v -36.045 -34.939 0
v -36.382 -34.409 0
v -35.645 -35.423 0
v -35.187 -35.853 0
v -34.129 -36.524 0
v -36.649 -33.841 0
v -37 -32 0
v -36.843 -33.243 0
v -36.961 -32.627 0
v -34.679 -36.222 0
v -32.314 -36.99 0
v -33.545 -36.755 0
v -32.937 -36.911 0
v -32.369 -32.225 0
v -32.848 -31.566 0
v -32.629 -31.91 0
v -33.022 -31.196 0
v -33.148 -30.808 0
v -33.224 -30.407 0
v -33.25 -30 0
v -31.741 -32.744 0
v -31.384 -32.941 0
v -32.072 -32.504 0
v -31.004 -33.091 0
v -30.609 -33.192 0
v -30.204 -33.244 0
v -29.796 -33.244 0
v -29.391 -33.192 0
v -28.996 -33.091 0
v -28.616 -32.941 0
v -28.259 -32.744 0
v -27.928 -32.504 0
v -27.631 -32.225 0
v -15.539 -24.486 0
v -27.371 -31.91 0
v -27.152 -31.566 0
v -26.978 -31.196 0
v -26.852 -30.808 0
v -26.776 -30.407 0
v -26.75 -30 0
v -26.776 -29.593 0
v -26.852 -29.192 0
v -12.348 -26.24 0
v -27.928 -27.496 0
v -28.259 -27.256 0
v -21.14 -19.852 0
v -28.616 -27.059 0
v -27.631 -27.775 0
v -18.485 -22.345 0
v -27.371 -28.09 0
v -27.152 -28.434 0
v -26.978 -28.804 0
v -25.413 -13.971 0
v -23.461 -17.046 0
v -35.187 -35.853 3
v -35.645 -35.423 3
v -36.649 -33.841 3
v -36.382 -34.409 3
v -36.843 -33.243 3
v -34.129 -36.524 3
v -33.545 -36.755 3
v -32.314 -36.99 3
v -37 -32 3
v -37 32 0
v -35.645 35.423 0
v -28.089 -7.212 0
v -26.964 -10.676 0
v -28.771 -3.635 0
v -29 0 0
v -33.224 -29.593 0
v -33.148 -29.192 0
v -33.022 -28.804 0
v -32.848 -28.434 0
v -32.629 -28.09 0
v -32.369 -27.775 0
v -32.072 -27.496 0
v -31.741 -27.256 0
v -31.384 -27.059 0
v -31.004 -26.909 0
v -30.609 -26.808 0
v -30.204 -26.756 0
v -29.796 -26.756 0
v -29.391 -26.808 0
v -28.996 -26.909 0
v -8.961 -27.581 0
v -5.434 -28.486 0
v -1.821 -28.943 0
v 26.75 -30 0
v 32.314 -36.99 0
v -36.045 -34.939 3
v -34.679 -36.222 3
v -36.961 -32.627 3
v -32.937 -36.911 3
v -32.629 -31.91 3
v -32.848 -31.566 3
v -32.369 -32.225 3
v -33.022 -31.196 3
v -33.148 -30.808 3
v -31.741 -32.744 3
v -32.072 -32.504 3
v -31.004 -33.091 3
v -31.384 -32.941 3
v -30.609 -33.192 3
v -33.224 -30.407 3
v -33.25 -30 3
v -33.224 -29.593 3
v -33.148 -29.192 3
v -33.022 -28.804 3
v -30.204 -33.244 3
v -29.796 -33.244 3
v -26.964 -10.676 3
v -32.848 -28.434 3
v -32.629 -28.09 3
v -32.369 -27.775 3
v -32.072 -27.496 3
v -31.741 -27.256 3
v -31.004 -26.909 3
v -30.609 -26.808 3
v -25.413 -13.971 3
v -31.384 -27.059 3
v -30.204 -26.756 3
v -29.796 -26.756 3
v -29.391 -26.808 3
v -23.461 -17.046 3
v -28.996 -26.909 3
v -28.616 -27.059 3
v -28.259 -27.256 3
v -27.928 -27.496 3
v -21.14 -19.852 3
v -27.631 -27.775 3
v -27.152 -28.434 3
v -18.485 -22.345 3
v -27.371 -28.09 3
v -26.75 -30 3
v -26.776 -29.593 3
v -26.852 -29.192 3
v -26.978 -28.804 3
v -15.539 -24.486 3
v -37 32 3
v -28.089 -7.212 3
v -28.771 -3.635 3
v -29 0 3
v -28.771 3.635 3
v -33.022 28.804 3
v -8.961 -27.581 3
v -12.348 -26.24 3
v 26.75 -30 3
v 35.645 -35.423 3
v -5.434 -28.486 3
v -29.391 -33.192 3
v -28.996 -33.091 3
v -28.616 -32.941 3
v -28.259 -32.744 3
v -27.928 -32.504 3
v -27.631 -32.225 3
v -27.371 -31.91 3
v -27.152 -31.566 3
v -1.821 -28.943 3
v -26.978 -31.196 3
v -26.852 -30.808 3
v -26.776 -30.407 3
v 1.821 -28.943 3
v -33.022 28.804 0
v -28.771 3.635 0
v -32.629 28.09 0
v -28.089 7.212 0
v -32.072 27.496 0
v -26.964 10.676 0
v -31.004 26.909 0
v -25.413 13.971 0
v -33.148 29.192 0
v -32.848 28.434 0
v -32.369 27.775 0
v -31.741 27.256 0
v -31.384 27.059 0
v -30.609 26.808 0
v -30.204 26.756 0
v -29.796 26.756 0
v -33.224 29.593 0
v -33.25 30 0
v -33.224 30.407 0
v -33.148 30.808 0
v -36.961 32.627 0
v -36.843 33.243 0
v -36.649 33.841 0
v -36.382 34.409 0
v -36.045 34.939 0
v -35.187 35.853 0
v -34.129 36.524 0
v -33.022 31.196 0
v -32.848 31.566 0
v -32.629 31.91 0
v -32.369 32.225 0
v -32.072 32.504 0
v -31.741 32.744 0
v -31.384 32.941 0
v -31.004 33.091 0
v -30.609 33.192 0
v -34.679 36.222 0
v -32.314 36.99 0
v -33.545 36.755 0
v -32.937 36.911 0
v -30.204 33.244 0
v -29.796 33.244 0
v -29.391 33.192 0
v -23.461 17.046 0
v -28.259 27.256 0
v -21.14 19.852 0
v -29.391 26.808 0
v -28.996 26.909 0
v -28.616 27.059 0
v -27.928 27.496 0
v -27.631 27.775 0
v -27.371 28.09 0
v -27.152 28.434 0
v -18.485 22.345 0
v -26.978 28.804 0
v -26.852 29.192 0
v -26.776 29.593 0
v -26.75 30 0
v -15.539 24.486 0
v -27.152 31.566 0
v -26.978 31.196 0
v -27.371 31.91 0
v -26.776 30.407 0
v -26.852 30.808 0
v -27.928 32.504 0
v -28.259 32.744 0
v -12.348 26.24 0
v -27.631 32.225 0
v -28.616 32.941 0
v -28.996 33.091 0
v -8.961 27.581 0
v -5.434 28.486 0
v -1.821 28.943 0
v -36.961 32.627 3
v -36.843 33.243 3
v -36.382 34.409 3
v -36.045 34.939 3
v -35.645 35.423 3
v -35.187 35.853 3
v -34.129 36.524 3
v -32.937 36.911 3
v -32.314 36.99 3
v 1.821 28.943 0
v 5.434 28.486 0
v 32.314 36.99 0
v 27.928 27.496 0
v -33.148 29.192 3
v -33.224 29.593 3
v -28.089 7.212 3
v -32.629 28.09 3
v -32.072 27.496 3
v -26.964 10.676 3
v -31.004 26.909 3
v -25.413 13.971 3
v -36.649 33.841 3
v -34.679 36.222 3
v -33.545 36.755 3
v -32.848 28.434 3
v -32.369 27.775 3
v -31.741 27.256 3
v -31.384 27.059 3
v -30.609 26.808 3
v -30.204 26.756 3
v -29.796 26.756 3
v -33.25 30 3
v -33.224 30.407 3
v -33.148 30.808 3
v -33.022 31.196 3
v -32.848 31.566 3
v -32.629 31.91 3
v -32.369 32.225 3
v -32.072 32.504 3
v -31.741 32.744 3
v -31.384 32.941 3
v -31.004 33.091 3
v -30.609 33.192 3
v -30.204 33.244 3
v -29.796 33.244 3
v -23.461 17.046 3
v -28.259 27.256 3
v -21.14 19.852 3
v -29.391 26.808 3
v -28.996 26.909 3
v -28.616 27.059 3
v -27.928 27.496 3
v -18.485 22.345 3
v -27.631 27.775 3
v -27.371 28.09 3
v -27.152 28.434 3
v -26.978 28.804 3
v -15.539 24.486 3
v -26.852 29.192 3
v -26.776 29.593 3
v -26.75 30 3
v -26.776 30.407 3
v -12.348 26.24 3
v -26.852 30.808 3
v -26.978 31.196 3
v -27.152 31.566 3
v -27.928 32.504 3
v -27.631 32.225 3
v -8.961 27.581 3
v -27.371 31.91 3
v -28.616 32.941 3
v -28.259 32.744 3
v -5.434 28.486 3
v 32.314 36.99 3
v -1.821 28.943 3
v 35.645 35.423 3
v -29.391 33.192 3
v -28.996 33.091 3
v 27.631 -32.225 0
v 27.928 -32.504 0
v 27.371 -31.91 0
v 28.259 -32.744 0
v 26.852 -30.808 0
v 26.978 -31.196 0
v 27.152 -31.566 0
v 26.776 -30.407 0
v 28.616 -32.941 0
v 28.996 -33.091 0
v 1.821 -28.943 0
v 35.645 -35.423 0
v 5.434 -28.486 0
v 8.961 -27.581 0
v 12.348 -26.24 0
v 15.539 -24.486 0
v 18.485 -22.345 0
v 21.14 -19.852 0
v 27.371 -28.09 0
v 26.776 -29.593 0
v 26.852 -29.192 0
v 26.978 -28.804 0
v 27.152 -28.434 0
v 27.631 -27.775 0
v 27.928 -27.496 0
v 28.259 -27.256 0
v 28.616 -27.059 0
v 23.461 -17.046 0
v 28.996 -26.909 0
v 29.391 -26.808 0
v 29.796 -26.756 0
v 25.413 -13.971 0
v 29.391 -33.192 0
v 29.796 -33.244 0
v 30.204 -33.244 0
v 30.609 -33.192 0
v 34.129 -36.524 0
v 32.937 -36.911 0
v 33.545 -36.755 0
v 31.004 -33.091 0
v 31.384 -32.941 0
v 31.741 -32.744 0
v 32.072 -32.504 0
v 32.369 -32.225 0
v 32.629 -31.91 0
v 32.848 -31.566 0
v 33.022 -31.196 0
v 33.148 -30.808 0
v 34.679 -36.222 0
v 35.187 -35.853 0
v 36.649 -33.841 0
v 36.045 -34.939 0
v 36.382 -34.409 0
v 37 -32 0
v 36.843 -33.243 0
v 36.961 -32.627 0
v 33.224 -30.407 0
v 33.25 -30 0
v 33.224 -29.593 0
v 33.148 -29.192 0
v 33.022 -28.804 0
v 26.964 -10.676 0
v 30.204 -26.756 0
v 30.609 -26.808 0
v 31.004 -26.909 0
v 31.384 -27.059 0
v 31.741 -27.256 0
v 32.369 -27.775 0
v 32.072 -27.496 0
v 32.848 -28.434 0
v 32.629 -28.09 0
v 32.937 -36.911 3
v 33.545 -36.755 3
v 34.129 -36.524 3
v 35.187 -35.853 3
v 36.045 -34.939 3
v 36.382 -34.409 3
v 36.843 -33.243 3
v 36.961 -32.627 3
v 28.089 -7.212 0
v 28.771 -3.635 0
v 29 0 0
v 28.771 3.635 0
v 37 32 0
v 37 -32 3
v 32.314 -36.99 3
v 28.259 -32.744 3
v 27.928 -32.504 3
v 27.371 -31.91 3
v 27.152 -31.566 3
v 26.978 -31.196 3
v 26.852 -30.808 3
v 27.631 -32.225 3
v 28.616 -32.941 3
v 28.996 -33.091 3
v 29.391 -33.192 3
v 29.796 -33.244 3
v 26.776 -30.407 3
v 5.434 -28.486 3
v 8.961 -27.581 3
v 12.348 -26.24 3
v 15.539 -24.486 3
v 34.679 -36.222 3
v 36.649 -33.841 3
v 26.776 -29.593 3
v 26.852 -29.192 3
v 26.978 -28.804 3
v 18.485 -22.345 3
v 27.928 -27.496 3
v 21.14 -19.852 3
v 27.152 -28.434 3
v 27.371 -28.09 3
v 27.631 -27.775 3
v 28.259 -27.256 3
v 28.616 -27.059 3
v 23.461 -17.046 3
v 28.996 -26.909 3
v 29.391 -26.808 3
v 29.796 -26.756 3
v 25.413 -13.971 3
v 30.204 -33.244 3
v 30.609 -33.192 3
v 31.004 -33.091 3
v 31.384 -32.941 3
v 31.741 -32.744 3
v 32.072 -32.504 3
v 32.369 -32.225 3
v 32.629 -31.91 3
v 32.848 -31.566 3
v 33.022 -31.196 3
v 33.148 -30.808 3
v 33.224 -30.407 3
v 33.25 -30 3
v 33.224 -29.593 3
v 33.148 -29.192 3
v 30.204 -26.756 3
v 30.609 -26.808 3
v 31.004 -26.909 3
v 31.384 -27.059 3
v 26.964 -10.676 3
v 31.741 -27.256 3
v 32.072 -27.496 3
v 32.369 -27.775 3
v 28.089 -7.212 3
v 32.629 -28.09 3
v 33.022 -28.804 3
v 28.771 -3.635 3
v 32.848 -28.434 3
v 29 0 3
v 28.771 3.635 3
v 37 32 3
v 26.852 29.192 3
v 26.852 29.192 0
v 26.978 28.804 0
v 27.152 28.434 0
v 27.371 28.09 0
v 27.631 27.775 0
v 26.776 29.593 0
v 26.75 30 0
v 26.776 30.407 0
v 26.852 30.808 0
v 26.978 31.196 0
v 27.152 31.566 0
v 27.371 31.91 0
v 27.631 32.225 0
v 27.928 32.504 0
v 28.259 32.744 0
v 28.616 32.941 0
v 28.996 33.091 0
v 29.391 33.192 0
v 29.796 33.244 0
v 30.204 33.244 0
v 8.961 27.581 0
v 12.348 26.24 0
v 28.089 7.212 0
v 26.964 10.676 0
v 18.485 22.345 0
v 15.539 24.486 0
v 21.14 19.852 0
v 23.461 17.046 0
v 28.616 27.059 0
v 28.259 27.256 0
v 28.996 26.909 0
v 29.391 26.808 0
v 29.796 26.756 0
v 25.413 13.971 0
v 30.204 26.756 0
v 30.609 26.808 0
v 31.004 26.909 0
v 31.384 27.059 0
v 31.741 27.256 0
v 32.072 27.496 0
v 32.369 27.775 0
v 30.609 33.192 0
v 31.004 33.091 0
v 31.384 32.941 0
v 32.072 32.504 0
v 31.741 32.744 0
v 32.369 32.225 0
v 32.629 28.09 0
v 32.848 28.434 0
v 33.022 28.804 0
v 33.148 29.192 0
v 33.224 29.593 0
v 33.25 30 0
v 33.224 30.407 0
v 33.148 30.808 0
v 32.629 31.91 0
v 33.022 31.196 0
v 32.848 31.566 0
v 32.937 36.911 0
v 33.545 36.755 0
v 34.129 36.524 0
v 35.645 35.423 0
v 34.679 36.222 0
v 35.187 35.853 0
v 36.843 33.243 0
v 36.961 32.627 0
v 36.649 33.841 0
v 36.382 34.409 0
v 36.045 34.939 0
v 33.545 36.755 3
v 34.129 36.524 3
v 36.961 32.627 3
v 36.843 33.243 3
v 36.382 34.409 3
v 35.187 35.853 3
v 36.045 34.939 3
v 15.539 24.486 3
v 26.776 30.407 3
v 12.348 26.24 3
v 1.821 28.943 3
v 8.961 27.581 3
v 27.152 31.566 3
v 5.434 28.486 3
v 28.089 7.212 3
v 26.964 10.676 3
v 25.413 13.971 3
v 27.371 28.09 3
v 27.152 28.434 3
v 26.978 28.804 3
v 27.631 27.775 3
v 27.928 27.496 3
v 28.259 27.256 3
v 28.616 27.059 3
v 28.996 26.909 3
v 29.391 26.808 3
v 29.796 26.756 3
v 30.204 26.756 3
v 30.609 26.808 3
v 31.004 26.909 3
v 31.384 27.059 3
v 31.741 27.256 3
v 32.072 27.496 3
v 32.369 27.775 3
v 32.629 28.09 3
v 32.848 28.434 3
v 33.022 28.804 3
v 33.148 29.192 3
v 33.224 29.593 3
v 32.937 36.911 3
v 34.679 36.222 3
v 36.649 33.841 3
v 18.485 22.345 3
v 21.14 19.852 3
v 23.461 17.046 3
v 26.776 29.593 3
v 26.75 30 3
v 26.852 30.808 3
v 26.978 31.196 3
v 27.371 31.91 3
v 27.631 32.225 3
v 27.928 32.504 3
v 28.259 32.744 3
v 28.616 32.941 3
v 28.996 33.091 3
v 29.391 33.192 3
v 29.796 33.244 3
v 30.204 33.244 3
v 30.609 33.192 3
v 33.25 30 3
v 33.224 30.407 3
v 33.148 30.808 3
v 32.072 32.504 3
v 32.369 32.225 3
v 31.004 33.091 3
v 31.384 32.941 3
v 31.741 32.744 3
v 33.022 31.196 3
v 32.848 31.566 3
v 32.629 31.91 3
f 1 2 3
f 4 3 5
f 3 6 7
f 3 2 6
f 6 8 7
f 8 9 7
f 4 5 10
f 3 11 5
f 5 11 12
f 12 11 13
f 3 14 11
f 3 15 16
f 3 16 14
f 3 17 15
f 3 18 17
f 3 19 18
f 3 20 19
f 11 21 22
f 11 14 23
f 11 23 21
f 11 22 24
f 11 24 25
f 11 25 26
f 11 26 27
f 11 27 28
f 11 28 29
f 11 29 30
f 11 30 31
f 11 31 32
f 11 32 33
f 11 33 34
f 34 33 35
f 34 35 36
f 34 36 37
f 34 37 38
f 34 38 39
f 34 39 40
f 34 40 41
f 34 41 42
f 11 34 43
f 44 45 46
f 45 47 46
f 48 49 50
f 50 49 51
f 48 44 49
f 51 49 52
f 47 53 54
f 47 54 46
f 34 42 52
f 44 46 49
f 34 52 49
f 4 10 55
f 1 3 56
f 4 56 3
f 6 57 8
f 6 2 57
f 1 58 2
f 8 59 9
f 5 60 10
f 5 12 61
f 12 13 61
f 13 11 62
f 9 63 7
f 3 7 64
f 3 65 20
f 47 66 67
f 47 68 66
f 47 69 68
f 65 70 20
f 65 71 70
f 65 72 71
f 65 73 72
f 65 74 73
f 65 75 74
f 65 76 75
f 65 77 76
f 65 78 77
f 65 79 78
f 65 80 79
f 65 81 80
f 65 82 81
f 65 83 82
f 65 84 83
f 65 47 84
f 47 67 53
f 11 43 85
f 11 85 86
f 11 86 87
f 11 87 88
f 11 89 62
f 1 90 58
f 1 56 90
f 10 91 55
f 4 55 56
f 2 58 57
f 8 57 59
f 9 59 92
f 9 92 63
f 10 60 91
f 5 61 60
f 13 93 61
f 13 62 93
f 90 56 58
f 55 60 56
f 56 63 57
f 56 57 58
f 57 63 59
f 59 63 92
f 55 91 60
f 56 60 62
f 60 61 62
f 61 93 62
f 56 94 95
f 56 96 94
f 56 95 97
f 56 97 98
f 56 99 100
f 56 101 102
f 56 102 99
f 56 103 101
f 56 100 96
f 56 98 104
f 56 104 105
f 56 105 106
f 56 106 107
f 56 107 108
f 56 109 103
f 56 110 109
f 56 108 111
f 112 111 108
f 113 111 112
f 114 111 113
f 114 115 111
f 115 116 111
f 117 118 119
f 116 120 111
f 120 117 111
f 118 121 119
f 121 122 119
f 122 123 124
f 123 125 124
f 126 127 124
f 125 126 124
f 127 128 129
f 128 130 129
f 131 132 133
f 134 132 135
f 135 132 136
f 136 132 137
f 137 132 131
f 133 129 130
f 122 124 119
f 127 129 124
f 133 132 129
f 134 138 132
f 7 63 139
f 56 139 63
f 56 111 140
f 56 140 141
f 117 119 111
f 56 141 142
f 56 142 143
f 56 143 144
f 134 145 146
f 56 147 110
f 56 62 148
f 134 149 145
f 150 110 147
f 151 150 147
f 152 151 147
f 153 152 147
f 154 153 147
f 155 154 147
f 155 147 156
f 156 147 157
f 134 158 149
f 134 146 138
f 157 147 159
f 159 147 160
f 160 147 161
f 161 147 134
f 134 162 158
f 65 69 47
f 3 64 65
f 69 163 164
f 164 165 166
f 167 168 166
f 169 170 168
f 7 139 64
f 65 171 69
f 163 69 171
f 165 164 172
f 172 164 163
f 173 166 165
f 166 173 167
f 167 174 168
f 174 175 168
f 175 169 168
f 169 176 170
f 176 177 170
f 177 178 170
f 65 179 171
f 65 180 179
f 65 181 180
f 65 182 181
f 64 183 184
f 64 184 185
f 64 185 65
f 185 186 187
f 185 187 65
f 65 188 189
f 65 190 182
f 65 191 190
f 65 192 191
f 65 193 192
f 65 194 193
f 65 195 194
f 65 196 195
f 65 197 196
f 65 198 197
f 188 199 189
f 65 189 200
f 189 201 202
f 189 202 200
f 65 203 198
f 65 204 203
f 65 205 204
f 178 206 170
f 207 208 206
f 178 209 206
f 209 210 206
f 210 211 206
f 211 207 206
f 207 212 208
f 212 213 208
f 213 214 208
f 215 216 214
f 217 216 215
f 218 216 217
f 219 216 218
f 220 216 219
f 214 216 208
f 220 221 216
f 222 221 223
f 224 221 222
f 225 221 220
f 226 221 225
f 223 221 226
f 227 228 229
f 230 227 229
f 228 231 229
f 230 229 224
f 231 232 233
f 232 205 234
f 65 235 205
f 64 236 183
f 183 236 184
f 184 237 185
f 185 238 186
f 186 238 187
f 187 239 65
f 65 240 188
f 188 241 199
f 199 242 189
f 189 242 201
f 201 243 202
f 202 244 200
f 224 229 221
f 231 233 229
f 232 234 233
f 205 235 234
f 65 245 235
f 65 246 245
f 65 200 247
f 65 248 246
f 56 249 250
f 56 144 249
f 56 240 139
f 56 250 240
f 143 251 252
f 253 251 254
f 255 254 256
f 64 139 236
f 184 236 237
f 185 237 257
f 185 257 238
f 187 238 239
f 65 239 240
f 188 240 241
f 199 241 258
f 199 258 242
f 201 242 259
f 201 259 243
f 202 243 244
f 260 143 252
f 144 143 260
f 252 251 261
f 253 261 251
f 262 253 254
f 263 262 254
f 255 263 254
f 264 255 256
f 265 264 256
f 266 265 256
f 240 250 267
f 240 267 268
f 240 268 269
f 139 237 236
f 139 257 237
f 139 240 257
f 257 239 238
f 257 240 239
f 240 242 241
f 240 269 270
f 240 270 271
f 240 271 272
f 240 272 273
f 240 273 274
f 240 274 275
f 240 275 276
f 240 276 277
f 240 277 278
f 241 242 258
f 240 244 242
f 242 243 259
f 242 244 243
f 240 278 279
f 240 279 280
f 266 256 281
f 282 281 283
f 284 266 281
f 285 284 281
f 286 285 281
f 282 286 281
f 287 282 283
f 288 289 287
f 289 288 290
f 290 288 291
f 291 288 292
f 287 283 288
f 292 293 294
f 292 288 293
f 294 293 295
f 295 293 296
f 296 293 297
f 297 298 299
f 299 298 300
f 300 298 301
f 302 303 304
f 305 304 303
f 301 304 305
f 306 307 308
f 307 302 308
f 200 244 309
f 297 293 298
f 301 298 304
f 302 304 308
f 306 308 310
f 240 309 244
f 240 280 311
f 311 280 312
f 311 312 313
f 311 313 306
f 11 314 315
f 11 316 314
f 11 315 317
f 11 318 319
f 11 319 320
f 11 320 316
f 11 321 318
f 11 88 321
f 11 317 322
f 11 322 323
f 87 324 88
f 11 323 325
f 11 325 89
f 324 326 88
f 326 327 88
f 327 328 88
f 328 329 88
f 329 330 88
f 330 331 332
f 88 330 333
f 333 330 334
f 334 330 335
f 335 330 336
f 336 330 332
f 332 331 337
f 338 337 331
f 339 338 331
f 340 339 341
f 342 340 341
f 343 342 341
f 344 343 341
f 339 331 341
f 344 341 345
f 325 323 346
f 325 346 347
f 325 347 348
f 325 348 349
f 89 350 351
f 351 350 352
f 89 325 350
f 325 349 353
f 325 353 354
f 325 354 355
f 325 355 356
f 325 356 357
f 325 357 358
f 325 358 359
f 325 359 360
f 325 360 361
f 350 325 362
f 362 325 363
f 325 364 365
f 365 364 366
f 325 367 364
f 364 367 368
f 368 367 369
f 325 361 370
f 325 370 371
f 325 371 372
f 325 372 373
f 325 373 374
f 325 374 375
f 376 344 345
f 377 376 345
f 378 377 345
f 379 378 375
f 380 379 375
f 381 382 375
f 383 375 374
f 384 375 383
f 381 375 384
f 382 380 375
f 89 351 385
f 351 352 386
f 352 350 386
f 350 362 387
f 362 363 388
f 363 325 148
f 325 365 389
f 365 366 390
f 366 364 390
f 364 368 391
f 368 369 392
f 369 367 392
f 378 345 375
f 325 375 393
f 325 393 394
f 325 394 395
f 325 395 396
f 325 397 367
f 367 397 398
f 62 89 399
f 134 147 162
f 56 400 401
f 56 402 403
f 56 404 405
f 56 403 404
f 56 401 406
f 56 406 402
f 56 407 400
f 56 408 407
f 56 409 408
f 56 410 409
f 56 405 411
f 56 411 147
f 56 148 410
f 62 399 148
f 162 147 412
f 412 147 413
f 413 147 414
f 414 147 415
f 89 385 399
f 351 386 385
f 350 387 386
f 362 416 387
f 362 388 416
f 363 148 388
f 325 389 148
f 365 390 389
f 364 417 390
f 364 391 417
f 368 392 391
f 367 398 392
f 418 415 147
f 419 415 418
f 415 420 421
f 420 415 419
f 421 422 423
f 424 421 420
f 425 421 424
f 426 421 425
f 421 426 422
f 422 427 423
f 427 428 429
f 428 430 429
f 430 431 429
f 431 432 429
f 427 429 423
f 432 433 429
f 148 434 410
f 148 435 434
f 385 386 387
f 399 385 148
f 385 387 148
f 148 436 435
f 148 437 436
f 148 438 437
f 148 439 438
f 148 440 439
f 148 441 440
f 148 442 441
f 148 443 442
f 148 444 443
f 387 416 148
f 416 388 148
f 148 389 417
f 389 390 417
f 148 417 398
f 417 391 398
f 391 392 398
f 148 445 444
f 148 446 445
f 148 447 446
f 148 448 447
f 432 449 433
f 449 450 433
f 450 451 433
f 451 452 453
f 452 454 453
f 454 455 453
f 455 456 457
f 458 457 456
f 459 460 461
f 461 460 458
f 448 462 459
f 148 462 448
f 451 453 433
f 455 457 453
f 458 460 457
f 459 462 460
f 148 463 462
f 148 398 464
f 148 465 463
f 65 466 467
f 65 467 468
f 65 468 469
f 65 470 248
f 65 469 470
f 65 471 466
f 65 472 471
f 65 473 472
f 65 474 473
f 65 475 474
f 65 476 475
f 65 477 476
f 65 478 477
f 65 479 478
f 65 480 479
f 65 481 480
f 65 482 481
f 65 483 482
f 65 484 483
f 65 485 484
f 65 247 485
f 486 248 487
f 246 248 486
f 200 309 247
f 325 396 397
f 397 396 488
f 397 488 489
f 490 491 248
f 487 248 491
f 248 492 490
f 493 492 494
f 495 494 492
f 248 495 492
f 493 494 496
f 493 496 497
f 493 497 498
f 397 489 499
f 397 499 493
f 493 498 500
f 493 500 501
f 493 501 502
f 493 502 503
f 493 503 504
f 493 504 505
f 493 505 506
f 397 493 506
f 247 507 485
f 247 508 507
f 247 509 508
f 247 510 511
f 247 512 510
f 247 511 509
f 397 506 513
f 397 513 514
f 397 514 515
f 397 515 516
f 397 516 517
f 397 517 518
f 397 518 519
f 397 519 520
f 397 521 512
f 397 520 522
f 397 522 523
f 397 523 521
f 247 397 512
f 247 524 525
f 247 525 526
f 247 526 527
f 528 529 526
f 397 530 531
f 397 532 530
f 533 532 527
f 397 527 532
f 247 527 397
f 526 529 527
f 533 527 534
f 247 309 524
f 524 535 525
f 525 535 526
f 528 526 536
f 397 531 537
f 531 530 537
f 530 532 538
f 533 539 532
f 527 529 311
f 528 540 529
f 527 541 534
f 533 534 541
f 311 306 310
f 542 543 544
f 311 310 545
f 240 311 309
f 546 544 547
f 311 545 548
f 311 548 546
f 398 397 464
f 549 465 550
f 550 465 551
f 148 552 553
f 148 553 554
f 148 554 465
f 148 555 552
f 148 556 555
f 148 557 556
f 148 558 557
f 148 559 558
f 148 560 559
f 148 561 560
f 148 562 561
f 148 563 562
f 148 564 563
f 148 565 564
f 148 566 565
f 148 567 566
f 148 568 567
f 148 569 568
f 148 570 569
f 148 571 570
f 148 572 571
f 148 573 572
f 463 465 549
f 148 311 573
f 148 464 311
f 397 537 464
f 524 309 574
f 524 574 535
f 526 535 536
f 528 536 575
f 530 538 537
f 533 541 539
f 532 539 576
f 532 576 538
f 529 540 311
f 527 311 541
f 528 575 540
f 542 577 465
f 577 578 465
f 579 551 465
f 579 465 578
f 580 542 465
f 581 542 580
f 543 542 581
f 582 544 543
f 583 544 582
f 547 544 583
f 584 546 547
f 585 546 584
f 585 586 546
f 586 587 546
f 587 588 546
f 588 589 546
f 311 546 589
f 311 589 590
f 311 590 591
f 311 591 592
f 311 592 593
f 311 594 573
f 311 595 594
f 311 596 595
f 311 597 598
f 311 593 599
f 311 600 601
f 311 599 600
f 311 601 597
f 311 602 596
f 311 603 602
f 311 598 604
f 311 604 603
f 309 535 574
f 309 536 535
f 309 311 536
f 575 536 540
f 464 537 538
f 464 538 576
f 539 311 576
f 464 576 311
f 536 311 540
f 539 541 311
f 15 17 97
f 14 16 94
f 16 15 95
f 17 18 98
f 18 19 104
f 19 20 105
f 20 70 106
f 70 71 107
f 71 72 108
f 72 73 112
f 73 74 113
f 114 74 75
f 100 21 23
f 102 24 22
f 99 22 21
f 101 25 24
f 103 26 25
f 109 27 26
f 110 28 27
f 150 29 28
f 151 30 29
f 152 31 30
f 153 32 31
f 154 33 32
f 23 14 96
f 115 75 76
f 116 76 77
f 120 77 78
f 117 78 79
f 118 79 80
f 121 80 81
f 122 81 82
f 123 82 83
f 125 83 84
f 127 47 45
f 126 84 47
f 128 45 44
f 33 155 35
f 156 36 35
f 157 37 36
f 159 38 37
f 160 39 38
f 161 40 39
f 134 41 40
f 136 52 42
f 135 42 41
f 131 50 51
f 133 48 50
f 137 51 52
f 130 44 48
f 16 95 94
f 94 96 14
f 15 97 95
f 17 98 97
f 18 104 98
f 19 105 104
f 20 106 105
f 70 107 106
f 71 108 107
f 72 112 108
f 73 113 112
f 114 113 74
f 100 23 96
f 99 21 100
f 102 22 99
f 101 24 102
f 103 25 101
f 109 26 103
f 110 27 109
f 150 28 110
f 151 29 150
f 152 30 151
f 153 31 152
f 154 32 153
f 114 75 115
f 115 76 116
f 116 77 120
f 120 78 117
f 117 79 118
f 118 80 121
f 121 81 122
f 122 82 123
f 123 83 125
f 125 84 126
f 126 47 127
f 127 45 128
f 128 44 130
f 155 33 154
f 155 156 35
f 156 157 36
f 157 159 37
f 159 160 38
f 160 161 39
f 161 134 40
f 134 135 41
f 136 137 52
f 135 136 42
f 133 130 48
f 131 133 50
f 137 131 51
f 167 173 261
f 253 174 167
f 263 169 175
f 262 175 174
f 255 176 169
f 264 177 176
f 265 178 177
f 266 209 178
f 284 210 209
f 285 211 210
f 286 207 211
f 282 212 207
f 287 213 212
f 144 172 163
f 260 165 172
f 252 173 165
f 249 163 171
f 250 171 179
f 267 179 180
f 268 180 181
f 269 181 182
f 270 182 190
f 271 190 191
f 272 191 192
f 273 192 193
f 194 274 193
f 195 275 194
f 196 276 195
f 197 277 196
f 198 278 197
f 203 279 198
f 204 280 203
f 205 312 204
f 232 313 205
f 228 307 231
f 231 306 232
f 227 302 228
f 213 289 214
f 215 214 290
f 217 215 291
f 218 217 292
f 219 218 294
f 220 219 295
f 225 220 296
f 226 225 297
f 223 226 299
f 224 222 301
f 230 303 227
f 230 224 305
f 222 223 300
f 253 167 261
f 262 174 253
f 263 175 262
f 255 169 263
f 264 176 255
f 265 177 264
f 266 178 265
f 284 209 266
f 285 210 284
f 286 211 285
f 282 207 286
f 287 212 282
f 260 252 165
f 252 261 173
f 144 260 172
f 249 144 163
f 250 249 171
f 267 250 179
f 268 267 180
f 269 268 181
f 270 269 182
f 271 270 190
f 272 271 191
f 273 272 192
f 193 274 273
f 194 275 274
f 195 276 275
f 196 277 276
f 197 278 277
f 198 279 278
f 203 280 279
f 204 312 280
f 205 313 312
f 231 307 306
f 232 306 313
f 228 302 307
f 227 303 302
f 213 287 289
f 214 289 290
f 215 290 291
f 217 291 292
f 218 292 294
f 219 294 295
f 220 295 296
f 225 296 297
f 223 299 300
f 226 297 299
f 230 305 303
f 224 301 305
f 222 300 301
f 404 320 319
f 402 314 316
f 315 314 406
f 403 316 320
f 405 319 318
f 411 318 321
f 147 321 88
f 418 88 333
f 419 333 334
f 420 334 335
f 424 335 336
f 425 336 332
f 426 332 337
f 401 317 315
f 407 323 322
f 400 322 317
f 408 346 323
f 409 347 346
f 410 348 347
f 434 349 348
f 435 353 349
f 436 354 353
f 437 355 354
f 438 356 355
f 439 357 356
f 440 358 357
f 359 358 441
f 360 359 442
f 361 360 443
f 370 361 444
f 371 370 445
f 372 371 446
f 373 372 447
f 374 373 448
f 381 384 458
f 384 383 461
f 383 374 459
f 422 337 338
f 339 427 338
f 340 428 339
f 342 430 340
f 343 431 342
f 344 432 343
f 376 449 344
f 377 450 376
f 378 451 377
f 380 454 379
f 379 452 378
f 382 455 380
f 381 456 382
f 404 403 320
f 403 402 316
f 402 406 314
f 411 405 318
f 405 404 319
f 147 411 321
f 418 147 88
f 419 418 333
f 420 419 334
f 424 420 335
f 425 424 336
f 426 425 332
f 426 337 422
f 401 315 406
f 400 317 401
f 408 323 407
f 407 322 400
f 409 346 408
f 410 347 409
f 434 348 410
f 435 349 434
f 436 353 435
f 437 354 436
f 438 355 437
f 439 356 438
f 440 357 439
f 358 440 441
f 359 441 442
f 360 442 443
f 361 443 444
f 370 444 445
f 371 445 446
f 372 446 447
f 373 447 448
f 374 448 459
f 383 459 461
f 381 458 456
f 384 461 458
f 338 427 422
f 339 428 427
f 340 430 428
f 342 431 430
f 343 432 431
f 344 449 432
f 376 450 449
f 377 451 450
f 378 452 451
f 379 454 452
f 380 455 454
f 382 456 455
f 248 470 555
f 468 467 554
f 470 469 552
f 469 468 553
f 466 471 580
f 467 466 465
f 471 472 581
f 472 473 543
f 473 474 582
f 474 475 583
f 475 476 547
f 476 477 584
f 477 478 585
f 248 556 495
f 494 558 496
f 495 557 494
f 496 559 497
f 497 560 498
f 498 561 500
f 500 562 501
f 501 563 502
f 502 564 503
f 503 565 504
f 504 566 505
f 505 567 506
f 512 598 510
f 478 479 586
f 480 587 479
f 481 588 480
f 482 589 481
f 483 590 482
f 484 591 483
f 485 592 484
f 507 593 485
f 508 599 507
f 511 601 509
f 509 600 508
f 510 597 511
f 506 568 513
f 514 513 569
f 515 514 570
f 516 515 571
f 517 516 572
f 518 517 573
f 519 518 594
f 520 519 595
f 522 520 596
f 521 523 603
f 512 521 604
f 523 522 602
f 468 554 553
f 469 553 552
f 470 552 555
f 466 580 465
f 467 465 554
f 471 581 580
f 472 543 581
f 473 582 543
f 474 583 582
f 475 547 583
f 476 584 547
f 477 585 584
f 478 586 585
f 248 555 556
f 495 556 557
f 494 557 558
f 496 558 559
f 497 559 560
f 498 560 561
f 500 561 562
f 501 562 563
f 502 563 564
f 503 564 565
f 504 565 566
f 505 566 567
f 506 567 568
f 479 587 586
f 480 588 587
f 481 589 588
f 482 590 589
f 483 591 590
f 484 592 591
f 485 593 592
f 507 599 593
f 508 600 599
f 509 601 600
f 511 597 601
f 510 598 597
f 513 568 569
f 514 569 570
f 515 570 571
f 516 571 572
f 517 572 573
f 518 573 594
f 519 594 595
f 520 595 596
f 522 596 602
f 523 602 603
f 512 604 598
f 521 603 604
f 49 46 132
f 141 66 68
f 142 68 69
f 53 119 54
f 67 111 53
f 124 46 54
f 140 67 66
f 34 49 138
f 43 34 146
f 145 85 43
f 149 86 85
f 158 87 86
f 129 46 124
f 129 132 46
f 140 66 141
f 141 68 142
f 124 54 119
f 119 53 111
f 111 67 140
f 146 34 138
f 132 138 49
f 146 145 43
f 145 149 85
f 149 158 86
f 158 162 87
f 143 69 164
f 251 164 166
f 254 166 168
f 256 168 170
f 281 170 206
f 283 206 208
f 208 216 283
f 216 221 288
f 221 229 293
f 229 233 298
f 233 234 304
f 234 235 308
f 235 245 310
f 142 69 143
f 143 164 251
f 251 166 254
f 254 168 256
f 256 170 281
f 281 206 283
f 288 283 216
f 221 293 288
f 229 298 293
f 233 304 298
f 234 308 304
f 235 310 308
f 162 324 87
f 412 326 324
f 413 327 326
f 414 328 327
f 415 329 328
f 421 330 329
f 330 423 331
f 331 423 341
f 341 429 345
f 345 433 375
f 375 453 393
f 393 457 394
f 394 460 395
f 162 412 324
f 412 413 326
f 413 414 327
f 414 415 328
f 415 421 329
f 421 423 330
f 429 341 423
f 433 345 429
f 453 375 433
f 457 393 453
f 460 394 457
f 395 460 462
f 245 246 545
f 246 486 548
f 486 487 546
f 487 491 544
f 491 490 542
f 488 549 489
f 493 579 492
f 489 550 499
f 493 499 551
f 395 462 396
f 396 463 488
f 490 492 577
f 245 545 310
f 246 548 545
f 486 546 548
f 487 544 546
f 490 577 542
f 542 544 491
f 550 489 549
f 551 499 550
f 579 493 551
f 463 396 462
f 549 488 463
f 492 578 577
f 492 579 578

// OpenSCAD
$fn = 50;

difference() {
	union() {
		hull() {
			translate(v = [-32.0, 32.0, 0]) {
				cylinder(h = 3, r = 5);
			}
			translate(v = [32.0, 32.0, 0]) {
				cylinder(h = 3, r = 5);
			}
			translate(v = [-32.0, -32.0, 0]) {
				cylinder(h = 3, r = 5);
			}
			translate(v = [32.0, -32.0, 0]) {
				cylinder(h = 3, r = 5);
			}
		}
	}
	union() {
		translate(v = [-30.0, -30.0, -100.0]) {
			cylinder(h = 200, r = 3.25);
		}
		translate(v = [-30.0, 30.0, -100.0]) {
			cylinder(h = 200, r = 3.25);
		}
		translate(v = [30.0, -30.0, -100.0]) {
			cylinder(h = 200, r = 3.25);
		}
		translate(v = [30.0, 30.0, -100.0]) {
			cylinder(h = 200, r = 3.25);
		}
		translate(v = [-30.0, -30.0, -100.0]) {
			cylinder(h = 200, r = 1.8);
		}
		translate(v = [-30.0, 30.0, -100.0]) {
			cylinder(h = 200, r = 1.8);
		}
		translate(v = [30.0, -30.0, -100.0]) {
			cylinder(h = 200, r = 1.8);
		}
		translate(v = [30.0, 30.0, -100.0]) {
			cylinder(h = 200, r = 1.8);
		}
		cylinder(h = 3, r = 29.0);
	}
}
